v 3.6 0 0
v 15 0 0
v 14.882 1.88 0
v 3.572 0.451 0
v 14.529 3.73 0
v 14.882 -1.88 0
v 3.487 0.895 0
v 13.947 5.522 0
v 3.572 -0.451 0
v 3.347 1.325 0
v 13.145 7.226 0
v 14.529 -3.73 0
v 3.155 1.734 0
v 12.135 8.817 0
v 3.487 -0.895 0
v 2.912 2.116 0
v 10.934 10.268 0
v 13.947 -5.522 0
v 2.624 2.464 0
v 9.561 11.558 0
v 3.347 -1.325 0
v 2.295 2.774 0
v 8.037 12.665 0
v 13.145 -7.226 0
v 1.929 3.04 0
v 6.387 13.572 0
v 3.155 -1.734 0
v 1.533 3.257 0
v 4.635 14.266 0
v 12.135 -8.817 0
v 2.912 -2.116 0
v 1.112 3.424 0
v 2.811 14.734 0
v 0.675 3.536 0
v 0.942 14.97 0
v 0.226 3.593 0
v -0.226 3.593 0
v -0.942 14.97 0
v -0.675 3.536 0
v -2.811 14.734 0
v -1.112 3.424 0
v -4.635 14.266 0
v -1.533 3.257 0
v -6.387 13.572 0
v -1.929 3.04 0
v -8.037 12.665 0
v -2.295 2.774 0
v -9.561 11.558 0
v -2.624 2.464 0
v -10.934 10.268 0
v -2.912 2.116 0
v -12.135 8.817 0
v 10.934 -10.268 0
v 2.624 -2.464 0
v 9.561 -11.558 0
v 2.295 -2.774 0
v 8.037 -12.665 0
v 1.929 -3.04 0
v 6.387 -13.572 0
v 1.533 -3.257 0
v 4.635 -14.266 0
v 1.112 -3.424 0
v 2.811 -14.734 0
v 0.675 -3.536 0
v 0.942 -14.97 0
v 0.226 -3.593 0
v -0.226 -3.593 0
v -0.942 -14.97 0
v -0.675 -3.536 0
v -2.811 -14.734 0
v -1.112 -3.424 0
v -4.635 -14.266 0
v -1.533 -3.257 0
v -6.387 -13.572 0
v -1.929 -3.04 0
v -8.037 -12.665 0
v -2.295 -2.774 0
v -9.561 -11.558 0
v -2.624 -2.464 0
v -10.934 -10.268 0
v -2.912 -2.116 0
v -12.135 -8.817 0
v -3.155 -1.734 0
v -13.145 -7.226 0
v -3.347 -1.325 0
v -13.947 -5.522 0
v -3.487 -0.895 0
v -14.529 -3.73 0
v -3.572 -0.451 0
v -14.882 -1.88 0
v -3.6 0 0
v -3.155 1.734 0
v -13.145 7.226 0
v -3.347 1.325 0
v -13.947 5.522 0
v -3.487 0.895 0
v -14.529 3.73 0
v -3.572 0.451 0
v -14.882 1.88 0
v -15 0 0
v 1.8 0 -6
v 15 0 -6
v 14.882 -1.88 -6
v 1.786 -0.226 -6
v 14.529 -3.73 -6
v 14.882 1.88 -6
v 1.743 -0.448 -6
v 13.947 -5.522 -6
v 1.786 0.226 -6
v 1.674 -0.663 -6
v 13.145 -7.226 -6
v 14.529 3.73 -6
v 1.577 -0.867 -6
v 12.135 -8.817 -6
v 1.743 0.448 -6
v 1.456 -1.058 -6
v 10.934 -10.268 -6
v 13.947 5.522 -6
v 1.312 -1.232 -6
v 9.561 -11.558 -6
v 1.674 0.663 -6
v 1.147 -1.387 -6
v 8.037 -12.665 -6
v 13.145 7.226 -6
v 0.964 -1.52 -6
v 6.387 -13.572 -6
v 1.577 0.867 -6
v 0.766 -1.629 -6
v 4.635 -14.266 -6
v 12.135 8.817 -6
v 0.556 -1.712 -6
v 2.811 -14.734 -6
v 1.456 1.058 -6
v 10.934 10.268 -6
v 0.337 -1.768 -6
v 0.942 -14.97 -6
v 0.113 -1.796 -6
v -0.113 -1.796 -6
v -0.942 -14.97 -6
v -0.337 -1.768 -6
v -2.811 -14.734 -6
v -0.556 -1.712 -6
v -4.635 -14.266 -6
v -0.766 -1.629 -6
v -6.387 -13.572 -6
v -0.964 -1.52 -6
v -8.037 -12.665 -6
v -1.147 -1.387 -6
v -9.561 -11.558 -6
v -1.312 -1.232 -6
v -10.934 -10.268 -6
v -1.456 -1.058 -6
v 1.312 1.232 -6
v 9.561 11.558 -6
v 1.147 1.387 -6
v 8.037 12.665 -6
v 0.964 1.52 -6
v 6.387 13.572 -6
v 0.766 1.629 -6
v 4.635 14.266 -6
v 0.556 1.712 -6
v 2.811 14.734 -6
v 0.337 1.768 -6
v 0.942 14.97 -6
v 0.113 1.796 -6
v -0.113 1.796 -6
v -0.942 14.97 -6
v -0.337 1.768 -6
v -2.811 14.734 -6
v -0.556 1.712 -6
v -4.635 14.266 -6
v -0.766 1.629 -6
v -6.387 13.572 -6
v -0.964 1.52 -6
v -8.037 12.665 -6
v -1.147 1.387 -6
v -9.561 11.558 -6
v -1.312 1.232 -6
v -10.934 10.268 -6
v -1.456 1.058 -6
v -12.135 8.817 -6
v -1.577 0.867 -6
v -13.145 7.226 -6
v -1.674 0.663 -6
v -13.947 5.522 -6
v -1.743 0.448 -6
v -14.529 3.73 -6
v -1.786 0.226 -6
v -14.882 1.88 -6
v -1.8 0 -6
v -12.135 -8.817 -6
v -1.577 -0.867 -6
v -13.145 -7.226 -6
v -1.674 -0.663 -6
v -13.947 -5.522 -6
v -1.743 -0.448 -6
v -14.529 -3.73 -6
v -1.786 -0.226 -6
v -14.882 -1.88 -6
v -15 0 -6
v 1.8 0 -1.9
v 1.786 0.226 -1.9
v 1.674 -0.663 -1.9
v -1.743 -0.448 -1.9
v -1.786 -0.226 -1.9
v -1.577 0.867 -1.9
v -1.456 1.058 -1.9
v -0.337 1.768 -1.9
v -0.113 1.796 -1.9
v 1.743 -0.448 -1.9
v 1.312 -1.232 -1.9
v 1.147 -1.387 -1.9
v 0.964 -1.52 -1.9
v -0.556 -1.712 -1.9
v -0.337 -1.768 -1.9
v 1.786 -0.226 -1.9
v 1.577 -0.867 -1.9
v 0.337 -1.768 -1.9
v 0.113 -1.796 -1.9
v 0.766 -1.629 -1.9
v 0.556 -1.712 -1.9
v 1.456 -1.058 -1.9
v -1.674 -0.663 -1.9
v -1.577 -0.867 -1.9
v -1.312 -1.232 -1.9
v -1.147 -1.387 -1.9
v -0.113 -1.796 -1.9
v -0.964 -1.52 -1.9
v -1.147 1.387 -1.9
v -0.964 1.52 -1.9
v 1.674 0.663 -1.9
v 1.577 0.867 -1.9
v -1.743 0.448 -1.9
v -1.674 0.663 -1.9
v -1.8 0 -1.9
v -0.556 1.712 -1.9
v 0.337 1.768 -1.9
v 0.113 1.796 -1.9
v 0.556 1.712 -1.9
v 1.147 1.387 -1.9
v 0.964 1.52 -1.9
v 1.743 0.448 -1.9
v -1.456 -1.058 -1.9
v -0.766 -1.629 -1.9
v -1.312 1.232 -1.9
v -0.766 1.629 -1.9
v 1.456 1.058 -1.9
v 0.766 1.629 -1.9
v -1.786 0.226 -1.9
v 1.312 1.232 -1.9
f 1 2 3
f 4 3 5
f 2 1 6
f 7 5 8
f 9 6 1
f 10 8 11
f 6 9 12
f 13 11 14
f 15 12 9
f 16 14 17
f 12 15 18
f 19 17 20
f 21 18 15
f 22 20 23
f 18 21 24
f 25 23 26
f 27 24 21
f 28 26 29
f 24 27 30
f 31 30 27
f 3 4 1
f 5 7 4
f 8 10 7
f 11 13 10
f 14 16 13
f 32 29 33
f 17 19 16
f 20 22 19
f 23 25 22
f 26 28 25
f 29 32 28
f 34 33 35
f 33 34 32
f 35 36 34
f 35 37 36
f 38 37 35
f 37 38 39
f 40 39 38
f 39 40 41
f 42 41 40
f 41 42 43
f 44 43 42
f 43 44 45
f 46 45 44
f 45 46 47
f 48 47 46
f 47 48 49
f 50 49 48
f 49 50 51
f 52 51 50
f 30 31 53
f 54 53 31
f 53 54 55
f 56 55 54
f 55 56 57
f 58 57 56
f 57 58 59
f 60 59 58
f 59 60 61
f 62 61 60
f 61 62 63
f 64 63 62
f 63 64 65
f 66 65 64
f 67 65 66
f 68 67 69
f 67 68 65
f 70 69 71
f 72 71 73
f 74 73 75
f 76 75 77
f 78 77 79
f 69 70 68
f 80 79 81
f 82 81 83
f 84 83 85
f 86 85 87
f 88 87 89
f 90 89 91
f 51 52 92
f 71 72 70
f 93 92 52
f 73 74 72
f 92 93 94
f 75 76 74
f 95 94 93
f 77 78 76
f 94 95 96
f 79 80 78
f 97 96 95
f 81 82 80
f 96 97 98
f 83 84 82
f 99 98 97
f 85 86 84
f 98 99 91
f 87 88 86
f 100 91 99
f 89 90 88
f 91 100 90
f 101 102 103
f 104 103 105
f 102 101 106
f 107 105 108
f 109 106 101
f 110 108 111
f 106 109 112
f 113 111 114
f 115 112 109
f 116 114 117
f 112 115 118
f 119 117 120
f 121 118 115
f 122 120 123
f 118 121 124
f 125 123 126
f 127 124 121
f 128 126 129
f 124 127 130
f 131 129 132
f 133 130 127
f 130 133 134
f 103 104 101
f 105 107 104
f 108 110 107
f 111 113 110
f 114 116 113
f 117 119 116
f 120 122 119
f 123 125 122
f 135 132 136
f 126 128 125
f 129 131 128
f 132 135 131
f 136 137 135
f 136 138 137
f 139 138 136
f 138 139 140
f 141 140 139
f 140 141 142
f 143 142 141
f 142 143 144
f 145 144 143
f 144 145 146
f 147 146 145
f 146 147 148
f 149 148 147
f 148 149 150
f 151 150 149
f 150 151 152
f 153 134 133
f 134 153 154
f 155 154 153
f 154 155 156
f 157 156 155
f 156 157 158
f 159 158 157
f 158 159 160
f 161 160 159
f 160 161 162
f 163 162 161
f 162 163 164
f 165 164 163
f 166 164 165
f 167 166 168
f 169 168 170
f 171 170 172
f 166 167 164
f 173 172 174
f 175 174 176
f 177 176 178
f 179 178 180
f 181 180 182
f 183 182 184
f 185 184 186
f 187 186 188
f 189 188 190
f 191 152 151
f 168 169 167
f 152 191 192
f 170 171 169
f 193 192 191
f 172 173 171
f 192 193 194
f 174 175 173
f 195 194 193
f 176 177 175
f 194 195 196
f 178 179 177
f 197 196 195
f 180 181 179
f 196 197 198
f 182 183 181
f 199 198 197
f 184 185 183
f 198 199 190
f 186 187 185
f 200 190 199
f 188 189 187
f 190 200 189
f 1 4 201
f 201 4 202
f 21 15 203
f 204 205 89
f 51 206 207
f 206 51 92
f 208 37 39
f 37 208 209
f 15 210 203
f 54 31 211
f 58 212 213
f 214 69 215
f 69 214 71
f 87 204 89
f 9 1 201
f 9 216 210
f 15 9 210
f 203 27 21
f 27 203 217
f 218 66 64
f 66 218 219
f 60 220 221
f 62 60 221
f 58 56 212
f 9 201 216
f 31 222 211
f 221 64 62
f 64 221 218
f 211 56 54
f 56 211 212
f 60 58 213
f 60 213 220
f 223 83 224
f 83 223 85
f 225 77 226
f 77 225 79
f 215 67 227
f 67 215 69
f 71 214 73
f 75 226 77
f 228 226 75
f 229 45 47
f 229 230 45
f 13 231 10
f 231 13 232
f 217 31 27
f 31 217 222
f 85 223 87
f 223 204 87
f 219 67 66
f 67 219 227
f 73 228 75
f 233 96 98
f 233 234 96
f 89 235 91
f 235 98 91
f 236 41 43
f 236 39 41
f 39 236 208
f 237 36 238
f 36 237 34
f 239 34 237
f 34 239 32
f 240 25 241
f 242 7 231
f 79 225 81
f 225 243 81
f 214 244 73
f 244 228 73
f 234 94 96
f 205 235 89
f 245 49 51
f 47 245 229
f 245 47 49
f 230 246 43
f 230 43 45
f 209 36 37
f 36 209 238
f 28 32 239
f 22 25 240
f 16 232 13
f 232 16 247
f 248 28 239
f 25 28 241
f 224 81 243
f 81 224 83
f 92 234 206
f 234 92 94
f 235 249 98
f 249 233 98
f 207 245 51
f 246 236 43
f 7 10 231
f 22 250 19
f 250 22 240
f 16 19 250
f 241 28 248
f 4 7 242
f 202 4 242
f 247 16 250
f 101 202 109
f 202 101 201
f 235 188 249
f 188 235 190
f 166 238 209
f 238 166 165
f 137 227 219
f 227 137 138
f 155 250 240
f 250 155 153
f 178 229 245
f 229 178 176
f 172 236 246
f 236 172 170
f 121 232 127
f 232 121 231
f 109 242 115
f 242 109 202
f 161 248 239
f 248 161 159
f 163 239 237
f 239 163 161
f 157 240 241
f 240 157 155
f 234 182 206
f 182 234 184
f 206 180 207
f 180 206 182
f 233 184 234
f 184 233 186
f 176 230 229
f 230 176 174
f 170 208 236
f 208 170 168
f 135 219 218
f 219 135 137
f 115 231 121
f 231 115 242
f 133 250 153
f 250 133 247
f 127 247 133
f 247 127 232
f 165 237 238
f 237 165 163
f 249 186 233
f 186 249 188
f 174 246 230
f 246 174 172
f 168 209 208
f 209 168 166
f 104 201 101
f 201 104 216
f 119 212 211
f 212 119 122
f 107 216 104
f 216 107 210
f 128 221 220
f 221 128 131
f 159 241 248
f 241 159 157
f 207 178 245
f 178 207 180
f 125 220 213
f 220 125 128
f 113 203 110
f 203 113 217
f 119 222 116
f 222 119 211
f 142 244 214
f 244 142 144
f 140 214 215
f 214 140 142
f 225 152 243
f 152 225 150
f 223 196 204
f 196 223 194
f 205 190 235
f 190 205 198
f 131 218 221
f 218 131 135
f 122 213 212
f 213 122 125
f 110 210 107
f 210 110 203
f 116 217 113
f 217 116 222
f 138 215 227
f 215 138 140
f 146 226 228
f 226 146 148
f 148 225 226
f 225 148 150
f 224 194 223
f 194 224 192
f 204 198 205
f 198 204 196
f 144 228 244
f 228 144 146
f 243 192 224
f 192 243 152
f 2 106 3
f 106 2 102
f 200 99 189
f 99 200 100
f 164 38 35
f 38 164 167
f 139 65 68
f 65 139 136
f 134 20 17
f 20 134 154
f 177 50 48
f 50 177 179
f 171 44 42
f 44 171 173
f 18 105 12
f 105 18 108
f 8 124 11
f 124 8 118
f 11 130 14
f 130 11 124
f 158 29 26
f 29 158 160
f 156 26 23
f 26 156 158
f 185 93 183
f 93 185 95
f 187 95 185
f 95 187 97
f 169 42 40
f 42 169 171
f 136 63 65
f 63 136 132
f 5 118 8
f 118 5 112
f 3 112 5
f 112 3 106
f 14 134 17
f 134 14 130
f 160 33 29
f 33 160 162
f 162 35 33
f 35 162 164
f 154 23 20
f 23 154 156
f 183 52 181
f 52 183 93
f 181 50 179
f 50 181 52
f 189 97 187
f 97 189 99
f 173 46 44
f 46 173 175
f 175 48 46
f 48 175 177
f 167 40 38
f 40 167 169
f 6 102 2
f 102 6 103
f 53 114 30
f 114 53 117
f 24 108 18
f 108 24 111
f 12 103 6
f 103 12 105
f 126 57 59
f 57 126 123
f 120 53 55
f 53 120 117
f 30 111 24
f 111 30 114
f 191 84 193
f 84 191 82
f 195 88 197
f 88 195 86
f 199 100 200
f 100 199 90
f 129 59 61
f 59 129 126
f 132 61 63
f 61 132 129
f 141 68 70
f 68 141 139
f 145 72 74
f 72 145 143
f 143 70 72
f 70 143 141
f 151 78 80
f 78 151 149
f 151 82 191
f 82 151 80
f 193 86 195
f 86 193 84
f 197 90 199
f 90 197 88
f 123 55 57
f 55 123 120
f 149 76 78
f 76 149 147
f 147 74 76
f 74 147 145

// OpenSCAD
$fn = 50;


difference() {
	union() {
		translate(v = [0, 0, -6.0000000000]) {
			cylinder(h = 6, r = 15.0000000000);
		}
	}
	union() {
		translate(v = [0, 0, 0]) {
			rotate(a = [0, 0, 0]) {
				difference() {
					union() {
						translate(v = [0, 0, -6.0000000000]) {
							cylinder(h = 6, r = 1.5000000000);
						}
						translate(v = [0, 0, -1.9000000000]) {
							cylinder(h = 1.9000000000, r1 = 1.8000000000, r2 = 3.6000000000);
						}
						translate(v = [0, 0, -6.0000000000]) {
							cylinder(h = 6, r = 1.8000000000);
						}
						translate(v = [0, 0, -6.0000000000]) {
							cylinder(h = 6, r = 1.5000000000);
						}
					}
					union();
				}
			}
		}
	}
}
